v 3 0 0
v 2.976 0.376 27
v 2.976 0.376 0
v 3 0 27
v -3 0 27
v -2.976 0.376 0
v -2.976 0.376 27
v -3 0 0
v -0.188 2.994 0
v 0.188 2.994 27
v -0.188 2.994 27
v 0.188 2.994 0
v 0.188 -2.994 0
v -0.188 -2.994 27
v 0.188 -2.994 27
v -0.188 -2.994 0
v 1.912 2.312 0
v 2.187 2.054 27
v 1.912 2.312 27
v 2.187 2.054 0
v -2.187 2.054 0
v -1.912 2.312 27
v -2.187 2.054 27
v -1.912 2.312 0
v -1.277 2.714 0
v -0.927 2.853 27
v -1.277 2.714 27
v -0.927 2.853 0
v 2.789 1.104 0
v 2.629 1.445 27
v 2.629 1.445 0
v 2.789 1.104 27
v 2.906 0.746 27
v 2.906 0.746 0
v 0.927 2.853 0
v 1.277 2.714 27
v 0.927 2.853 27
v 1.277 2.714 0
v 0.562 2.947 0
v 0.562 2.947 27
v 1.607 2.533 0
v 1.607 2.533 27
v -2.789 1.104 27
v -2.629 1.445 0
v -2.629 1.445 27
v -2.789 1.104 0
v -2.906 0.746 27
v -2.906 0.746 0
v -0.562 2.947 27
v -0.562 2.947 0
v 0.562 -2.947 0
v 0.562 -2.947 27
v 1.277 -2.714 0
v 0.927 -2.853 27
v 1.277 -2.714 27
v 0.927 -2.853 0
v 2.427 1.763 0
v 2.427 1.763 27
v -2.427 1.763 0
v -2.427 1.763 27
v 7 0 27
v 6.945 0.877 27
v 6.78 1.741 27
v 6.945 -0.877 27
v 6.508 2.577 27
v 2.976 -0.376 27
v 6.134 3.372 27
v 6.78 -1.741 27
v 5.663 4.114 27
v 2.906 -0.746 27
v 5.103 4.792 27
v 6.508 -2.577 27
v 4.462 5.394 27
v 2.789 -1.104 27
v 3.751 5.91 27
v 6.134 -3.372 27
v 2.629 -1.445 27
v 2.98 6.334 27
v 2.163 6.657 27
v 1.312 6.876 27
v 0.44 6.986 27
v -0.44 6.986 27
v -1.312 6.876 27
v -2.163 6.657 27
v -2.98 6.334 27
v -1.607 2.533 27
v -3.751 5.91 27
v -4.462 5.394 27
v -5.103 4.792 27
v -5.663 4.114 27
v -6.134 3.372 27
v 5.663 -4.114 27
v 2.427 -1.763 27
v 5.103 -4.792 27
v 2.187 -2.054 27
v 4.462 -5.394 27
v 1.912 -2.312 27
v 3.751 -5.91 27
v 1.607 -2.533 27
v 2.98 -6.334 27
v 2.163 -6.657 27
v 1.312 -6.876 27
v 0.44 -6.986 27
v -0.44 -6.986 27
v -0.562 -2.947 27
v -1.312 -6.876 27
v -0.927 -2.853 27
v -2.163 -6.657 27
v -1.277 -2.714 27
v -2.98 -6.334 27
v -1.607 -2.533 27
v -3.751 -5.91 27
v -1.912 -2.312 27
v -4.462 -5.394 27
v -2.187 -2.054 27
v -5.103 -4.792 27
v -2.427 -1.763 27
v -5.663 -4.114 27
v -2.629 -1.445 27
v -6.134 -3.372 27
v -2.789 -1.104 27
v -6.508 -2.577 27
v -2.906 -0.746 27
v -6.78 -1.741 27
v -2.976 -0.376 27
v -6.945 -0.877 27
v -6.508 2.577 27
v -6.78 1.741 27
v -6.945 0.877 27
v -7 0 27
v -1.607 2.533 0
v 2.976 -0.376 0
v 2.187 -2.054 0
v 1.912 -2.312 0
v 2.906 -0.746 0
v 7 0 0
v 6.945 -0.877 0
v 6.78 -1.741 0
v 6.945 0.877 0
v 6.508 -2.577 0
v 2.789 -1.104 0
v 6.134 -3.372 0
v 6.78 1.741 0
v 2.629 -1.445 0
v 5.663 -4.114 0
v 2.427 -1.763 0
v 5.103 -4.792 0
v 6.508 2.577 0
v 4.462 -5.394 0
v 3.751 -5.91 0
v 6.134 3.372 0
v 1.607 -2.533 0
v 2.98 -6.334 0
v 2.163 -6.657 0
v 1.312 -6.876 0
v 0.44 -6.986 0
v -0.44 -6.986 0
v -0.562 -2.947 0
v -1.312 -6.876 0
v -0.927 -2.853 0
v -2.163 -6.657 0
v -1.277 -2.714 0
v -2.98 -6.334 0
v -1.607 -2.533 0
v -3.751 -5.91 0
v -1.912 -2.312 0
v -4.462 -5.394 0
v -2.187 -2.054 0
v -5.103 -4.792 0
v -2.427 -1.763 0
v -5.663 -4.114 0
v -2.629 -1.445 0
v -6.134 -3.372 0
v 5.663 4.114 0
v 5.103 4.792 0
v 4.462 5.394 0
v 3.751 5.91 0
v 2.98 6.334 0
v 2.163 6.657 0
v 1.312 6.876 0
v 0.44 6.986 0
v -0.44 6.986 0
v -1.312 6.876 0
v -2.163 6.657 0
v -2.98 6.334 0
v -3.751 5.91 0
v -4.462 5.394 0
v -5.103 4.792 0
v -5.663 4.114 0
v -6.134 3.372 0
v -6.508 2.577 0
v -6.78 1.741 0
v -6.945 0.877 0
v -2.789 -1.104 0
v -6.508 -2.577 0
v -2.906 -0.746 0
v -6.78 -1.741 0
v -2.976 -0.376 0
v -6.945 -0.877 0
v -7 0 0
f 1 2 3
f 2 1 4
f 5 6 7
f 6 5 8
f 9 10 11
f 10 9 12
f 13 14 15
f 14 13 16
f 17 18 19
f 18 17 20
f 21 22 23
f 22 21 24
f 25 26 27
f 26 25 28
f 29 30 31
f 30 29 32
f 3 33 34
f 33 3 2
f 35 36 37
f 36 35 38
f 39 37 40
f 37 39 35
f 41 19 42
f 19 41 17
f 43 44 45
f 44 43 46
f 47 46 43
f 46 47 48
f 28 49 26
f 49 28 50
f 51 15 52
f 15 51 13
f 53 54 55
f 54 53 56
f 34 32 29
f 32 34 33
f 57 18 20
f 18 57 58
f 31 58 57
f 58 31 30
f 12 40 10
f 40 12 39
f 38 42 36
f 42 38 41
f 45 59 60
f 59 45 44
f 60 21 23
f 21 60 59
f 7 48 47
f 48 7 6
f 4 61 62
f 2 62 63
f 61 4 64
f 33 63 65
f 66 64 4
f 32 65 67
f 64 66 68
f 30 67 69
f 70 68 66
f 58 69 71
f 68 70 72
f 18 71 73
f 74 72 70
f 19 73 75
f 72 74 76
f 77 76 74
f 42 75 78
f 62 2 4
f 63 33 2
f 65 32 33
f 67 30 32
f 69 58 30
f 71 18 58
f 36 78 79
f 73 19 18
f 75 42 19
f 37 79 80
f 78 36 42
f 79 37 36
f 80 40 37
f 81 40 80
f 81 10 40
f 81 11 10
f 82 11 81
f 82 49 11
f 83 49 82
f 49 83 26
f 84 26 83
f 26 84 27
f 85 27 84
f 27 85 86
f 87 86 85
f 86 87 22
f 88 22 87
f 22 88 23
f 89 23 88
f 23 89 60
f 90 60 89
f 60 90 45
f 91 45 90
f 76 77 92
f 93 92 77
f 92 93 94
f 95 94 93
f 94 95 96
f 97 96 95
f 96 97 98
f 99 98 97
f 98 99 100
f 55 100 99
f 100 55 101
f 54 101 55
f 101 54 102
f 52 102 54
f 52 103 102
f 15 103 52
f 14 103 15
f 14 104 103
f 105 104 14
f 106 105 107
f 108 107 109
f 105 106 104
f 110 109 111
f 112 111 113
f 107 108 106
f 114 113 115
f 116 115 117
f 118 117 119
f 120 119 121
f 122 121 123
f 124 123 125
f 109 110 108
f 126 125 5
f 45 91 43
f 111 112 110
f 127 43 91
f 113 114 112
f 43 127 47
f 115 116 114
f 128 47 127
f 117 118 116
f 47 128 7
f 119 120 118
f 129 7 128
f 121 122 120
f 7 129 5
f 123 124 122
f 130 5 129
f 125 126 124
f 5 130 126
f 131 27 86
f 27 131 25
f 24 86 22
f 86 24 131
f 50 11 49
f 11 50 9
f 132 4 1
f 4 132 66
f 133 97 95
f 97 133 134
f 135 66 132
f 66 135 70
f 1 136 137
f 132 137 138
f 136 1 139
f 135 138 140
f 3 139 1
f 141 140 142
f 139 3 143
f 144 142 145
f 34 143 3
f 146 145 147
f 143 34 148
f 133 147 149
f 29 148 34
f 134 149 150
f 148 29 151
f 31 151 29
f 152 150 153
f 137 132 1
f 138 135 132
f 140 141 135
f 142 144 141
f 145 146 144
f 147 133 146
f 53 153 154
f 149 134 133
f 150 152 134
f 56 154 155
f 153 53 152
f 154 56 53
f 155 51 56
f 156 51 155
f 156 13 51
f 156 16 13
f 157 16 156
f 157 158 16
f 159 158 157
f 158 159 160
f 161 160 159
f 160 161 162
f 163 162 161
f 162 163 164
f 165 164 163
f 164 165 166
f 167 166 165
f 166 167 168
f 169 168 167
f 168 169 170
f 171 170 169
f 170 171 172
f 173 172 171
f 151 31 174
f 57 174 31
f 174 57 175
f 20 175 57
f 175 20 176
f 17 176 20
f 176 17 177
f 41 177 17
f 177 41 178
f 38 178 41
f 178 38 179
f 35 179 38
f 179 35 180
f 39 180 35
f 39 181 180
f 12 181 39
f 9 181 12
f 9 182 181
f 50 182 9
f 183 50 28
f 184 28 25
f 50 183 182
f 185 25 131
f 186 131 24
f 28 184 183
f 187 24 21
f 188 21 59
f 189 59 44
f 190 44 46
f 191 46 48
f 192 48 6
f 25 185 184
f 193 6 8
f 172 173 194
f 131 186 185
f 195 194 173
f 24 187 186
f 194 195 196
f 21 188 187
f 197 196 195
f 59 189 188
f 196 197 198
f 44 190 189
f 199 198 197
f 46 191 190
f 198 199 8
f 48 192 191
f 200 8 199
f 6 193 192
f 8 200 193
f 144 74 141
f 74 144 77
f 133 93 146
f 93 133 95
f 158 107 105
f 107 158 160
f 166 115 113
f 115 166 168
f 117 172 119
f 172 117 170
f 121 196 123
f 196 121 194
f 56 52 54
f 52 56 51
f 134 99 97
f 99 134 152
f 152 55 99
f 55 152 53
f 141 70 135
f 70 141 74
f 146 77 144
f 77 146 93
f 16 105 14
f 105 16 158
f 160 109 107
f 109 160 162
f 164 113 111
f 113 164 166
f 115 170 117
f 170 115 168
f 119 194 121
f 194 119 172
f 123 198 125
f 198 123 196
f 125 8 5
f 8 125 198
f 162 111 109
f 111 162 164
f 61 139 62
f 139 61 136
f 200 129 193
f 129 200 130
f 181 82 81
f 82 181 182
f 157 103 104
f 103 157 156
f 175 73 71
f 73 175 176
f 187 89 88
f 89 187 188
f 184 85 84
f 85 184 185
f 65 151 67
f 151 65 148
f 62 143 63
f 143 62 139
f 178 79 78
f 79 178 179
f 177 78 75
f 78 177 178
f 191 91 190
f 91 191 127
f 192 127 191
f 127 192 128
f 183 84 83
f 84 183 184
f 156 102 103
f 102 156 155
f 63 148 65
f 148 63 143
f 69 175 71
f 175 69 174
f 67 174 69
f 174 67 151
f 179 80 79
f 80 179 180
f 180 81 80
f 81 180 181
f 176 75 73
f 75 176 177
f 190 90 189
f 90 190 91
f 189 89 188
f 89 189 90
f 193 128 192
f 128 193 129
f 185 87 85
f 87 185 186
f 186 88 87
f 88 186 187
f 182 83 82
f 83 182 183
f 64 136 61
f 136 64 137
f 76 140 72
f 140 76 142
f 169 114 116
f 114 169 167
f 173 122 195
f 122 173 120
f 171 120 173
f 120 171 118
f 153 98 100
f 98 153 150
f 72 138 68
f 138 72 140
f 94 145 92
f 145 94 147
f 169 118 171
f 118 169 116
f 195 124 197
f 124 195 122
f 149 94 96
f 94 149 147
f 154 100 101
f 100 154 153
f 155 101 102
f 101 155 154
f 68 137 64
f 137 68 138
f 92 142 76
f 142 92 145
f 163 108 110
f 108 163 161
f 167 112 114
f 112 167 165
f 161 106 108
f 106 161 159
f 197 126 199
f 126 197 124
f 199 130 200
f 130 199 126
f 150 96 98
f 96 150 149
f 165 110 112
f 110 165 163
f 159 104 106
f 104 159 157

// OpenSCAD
$fn = 50;


difference() {
	union() {
		cylinder(h = 27, r = 7.0000000000);
	}
	union() {
		translate(v = [0, 0, -100]) {
			cylinder(h = 200, r = 3.0000000000);
		}
		translate(v = [0, 0, -100]) {
			cylinder(h = 200, r = 1.5000000000);
		}
	}
}
